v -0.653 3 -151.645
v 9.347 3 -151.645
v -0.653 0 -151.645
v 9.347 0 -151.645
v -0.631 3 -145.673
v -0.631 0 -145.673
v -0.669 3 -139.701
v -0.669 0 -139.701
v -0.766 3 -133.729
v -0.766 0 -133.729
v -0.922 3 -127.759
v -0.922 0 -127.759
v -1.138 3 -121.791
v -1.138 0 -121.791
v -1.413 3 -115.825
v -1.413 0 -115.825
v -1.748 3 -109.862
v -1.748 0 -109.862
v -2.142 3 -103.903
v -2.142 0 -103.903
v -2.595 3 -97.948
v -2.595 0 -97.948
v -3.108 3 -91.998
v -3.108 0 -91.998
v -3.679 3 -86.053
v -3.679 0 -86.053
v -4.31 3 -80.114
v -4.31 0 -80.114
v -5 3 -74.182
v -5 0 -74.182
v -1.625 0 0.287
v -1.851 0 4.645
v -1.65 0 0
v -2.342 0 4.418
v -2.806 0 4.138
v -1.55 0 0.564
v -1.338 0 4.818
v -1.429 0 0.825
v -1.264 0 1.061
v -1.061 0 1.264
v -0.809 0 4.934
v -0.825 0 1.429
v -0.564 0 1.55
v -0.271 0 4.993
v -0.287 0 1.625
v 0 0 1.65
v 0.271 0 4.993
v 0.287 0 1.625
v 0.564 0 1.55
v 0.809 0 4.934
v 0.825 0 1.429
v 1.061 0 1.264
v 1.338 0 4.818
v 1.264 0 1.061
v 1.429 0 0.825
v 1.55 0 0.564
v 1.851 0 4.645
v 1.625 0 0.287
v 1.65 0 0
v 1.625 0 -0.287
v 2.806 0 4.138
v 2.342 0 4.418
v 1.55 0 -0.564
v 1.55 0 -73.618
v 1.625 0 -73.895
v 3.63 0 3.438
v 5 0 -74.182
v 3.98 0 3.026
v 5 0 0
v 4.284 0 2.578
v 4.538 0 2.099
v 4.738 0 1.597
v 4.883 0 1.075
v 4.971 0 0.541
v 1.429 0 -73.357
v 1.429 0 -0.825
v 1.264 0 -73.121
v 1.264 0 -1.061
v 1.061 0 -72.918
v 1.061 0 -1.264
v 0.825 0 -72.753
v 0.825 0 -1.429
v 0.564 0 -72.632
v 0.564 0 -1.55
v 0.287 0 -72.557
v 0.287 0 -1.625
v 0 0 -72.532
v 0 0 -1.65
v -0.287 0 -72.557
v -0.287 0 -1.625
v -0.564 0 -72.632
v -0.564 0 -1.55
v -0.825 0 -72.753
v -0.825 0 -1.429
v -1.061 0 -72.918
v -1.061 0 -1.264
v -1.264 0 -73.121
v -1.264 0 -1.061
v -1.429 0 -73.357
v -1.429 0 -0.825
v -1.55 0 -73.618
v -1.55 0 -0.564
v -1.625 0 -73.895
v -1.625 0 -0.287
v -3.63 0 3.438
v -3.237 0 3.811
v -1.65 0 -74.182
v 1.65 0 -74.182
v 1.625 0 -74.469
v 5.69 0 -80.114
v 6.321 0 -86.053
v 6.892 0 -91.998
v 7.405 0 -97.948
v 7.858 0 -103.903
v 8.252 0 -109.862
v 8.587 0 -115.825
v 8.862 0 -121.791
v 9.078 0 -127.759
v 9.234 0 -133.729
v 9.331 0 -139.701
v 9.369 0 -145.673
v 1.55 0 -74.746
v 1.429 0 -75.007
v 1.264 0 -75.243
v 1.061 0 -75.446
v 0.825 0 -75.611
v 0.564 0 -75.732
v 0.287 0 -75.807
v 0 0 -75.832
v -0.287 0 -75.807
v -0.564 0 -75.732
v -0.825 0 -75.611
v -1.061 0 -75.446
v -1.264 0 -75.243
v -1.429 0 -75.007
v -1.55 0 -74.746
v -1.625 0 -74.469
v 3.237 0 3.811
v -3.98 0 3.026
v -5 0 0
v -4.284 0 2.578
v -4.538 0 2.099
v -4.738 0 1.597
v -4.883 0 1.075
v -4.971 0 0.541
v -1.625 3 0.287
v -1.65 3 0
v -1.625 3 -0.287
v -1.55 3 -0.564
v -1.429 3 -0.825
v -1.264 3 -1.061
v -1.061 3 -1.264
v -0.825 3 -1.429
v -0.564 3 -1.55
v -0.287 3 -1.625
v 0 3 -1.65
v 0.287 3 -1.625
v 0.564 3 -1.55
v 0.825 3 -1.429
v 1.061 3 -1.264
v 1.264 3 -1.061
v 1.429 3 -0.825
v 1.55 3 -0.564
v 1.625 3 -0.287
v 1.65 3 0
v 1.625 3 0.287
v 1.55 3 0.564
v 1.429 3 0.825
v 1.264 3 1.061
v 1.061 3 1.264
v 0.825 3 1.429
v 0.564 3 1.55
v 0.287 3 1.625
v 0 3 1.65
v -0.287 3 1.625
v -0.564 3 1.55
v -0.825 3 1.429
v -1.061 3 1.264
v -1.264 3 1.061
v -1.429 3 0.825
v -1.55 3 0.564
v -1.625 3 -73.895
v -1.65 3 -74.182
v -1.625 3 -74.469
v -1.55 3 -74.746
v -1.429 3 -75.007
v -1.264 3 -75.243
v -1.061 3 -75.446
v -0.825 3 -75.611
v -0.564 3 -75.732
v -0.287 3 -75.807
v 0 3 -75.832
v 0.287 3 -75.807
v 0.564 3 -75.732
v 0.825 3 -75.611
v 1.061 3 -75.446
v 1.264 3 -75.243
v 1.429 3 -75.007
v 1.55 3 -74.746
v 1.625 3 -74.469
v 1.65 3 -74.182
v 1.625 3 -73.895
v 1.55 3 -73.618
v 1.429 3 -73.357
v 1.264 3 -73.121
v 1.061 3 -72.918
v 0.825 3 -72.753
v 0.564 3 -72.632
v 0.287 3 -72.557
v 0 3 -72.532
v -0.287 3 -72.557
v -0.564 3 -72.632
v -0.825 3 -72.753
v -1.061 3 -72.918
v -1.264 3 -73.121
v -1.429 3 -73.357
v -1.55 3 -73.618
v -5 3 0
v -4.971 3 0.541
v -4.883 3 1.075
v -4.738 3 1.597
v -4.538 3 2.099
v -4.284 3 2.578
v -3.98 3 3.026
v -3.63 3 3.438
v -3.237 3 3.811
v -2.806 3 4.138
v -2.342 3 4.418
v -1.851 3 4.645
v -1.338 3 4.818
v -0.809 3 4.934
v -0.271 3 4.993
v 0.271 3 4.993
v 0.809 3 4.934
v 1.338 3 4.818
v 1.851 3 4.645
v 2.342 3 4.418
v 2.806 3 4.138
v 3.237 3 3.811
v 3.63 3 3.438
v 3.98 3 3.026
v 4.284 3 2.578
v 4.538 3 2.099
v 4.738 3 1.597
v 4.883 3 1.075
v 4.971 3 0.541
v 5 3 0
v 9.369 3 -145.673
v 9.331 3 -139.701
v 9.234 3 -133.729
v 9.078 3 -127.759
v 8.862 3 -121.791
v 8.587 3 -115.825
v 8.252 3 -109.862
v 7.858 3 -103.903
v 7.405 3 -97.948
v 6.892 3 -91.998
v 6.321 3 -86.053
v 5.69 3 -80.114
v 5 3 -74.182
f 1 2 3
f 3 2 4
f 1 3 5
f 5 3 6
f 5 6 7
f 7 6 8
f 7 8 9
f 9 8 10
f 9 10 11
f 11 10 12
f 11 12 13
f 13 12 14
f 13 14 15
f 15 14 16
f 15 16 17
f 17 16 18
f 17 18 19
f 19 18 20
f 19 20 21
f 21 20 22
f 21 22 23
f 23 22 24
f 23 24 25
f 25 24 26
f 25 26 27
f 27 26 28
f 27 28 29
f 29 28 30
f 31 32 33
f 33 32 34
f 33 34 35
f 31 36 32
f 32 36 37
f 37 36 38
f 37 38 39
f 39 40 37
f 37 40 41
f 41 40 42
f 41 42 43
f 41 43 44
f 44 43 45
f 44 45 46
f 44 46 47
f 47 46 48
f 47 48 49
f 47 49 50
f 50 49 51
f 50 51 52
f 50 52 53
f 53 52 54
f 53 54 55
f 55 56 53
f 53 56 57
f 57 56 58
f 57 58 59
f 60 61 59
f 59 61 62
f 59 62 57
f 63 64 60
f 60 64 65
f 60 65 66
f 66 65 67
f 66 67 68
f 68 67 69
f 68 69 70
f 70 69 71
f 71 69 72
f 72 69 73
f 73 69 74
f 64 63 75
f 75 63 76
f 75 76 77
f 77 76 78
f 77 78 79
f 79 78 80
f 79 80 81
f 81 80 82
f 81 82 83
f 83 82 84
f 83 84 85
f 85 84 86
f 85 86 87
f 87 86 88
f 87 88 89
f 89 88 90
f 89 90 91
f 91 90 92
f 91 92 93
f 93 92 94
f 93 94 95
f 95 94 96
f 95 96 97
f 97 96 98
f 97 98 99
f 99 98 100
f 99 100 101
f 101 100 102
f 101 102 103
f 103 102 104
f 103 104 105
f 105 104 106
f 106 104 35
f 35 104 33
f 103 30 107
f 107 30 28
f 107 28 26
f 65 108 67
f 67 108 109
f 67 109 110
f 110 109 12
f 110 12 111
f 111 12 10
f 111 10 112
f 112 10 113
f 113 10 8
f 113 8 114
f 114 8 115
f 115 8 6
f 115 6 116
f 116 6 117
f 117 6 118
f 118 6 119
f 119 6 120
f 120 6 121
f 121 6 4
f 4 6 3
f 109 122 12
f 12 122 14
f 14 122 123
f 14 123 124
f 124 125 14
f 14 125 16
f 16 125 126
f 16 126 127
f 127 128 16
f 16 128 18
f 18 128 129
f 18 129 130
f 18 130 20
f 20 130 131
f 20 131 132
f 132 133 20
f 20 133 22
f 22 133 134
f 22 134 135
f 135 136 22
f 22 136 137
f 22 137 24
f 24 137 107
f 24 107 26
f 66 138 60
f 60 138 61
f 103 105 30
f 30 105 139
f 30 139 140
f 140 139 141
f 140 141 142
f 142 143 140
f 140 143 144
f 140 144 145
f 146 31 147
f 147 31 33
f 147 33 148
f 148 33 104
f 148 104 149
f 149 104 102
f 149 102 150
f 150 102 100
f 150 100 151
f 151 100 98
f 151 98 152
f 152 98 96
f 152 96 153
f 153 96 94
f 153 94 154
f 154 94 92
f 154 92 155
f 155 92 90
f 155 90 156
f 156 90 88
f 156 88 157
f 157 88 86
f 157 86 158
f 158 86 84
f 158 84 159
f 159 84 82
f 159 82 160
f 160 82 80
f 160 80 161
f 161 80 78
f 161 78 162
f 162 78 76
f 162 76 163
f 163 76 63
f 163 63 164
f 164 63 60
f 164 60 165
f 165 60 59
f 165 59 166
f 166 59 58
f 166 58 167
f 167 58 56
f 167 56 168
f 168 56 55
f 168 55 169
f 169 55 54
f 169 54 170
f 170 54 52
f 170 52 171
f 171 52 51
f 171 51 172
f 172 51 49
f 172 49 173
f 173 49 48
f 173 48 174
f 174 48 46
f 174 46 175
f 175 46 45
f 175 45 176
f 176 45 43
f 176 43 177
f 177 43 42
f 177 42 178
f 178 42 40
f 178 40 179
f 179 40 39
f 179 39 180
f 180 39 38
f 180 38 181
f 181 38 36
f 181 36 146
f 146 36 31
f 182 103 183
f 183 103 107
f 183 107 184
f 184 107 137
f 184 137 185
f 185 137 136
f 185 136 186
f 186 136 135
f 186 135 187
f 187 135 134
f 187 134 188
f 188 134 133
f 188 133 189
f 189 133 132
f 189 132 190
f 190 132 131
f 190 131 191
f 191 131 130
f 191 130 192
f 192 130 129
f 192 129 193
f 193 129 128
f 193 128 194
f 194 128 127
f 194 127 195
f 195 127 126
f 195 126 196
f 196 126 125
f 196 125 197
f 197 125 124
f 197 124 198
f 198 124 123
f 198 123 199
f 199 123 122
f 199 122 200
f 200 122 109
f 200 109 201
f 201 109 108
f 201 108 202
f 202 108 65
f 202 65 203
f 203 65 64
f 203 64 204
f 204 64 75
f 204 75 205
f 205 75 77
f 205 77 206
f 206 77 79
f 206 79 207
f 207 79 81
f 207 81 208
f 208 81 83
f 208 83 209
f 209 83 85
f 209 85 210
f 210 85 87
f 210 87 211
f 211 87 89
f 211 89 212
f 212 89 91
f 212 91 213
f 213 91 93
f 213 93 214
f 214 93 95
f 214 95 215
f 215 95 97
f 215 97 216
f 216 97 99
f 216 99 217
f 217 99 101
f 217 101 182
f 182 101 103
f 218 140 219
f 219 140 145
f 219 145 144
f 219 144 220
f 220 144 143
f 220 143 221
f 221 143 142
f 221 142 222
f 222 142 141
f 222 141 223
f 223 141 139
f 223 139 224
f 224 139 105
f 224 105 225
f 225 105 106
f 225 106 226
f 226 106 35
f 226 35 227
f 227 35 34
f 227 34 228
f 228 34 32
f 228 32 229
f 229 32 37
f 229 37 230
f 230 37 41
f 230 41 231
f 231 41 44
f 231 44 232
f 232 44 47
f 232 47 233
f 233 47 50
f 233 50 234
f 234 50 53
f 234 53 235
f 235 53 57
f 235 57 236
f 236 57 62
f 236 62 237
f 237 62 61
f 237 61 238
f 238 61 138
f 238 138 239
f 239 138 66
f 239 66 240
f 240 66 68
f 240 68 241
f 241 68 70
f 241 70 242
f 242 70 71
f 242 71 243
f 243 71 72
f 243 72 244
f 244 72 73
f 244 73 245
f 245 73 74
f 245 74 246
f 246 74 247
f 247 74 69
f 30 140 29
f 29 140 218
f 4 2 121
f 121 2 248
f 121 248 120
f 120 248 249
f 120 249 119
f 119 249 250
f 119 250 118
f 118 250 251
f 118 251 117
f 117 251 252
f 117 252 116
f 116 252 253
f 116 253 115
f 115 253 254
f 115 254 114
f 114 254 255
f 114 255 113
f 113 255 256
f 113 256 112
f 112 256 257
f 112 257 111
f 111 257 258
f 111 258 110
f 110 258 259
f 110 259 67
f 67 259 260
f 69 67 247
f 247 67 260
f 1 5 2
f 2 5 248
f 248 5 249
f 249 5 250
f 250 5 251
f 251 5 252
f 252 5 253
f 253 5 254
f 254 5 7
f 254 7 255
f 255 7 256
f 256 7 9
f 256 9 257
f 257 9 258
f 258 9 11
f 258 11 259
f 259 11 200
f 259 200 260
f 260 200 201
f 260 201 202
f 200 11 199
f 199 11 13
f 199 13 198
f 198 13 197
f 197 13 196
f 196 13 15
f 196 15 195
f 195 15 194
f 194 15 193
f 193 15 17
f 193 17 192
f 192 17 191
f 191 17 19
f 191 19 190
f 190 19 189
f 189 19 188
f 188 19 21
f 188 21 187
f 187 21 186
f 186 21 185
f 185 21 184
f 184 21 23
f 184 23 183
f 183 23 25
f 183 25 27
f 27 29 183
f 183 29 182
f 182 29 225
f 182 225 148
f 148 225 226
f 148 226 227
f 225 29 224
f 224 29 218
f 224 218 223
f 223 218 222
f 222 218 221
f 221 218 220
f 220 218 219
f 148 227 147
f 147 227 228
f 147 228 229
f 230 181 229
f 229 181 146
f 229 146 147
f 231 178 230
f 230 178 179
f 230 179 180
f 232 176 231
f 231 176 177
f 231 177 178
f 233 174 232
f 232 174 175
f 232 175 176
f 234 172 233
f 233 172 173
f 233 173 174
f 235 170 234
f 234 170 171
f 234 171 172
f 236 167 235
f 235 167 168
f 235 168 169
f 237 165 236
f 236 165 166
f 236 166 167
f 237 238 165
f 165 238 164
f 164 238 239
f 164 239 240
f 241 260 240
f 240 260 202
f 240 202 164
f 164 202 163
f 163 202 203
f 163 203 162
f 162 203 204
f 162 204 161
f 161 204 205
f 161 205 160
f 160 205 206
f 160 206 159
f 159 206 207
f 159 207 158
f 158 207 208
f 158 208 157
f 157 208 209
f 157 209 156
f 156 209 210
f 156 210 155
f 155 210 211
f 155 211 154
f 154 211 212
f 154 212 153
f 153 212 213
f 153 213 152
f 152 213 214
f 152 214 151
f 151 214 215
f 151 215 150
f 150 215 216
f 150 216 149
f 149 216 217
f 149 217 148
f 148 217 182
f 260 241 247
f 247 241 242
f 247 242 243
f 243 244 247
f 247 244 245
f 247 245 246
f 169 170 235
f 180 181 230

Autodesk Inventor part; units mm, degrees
ref_plane "YZ Plane" through (0, 0, 0) normal (1, 0, 0) x (0, 1, 0)
ref_plane "XZ Plane" through (0, 0, 0) normal (0, 1, 0) x (-1, 0, 0)
ref_plane "XY Plane" through (0, 0, 0) normal (0, 0, 1) x (1, 0, 0)
sketch "Sketch1" plane through (0, 0, 0) normal (0, 1, 0) x (-1, 0, 0)
  line L0 (0, 0) -> (0, -322.934) construction
  line L1 (5, 0) -> (5, -322.934)
  line L2 (-5, -322.934) -> (-5, 0)
  arc A0 (5, 0) -> (-5, 0) centre (0, 0) ccw
  arc A1 (-5, -322.934) -> (5, -322.934) centre (0, -322.934) ccw
  circle A2 centre (0, 0) radius 1.65
  circle A3 centre (0, -322.934) radius 1.65
  circle A4 centre (0, -74.182) radius 1.65
  circle A5 centre (0, -218.733) radius 1.65
  arc A6 (5, -74.182) -> (5, -218.733) centre (600.631, -146.4575) ccw
  arc A7 (-5, -74.182) -> (-5, -218.733) centre (590.631, -146.4575) ccw
  point P0 (0, -161.467)
  dimension "d0" = 3.3
  dimension "d1" = 3.3
  dimension "d2" = 10
  dimension "d3" = 322.934
  dimension "d4" = 3.3
  dimension "d5" = 74.182
  dimension "d8" = 3.3
  dimension "d9" = 218.733
  dimension "d12" = 600
  dimension "d13" = 600
extrude "Extrusion1" add sketch "Sketch1" along normal blind 3 contours L1 A6 A1 L2 A0 | L2 A7
sketch "Sketch2" plane through (0, 3, 0) normal (0, 1, 0) x (1, 0, 0)
  line L0 (-80.742, 377.6004) -> (86.5972, 377.6004)
  line L1 (86.5972, 377.6004) -> (86.5972, -99.7148)
  line L2 (86.5972, -99.7148) -> (-80.742, -99.7148)
  line L3 (-80.742, -99.7148) -> (-80.742, 377.6004)
  line L4 (-25.6776, 342.7032) -> (34.5594, 342.7032)
  line L5 (34.5594, 342.7032) -> (34.5594, 151.6448)
  line L6 (34.5594, 151.6448) -> (-25.6776, 151.6448)
  line L7 (-25.6776, 151.6448) -> (-25.6776, 342.7032)
  point P0 (0, 0)
extrude "Extrusion2" cut sketch "Sketch2" against normal blind 100 contours L4 L5 L6 L7
properties part number "Part_3_p1"
